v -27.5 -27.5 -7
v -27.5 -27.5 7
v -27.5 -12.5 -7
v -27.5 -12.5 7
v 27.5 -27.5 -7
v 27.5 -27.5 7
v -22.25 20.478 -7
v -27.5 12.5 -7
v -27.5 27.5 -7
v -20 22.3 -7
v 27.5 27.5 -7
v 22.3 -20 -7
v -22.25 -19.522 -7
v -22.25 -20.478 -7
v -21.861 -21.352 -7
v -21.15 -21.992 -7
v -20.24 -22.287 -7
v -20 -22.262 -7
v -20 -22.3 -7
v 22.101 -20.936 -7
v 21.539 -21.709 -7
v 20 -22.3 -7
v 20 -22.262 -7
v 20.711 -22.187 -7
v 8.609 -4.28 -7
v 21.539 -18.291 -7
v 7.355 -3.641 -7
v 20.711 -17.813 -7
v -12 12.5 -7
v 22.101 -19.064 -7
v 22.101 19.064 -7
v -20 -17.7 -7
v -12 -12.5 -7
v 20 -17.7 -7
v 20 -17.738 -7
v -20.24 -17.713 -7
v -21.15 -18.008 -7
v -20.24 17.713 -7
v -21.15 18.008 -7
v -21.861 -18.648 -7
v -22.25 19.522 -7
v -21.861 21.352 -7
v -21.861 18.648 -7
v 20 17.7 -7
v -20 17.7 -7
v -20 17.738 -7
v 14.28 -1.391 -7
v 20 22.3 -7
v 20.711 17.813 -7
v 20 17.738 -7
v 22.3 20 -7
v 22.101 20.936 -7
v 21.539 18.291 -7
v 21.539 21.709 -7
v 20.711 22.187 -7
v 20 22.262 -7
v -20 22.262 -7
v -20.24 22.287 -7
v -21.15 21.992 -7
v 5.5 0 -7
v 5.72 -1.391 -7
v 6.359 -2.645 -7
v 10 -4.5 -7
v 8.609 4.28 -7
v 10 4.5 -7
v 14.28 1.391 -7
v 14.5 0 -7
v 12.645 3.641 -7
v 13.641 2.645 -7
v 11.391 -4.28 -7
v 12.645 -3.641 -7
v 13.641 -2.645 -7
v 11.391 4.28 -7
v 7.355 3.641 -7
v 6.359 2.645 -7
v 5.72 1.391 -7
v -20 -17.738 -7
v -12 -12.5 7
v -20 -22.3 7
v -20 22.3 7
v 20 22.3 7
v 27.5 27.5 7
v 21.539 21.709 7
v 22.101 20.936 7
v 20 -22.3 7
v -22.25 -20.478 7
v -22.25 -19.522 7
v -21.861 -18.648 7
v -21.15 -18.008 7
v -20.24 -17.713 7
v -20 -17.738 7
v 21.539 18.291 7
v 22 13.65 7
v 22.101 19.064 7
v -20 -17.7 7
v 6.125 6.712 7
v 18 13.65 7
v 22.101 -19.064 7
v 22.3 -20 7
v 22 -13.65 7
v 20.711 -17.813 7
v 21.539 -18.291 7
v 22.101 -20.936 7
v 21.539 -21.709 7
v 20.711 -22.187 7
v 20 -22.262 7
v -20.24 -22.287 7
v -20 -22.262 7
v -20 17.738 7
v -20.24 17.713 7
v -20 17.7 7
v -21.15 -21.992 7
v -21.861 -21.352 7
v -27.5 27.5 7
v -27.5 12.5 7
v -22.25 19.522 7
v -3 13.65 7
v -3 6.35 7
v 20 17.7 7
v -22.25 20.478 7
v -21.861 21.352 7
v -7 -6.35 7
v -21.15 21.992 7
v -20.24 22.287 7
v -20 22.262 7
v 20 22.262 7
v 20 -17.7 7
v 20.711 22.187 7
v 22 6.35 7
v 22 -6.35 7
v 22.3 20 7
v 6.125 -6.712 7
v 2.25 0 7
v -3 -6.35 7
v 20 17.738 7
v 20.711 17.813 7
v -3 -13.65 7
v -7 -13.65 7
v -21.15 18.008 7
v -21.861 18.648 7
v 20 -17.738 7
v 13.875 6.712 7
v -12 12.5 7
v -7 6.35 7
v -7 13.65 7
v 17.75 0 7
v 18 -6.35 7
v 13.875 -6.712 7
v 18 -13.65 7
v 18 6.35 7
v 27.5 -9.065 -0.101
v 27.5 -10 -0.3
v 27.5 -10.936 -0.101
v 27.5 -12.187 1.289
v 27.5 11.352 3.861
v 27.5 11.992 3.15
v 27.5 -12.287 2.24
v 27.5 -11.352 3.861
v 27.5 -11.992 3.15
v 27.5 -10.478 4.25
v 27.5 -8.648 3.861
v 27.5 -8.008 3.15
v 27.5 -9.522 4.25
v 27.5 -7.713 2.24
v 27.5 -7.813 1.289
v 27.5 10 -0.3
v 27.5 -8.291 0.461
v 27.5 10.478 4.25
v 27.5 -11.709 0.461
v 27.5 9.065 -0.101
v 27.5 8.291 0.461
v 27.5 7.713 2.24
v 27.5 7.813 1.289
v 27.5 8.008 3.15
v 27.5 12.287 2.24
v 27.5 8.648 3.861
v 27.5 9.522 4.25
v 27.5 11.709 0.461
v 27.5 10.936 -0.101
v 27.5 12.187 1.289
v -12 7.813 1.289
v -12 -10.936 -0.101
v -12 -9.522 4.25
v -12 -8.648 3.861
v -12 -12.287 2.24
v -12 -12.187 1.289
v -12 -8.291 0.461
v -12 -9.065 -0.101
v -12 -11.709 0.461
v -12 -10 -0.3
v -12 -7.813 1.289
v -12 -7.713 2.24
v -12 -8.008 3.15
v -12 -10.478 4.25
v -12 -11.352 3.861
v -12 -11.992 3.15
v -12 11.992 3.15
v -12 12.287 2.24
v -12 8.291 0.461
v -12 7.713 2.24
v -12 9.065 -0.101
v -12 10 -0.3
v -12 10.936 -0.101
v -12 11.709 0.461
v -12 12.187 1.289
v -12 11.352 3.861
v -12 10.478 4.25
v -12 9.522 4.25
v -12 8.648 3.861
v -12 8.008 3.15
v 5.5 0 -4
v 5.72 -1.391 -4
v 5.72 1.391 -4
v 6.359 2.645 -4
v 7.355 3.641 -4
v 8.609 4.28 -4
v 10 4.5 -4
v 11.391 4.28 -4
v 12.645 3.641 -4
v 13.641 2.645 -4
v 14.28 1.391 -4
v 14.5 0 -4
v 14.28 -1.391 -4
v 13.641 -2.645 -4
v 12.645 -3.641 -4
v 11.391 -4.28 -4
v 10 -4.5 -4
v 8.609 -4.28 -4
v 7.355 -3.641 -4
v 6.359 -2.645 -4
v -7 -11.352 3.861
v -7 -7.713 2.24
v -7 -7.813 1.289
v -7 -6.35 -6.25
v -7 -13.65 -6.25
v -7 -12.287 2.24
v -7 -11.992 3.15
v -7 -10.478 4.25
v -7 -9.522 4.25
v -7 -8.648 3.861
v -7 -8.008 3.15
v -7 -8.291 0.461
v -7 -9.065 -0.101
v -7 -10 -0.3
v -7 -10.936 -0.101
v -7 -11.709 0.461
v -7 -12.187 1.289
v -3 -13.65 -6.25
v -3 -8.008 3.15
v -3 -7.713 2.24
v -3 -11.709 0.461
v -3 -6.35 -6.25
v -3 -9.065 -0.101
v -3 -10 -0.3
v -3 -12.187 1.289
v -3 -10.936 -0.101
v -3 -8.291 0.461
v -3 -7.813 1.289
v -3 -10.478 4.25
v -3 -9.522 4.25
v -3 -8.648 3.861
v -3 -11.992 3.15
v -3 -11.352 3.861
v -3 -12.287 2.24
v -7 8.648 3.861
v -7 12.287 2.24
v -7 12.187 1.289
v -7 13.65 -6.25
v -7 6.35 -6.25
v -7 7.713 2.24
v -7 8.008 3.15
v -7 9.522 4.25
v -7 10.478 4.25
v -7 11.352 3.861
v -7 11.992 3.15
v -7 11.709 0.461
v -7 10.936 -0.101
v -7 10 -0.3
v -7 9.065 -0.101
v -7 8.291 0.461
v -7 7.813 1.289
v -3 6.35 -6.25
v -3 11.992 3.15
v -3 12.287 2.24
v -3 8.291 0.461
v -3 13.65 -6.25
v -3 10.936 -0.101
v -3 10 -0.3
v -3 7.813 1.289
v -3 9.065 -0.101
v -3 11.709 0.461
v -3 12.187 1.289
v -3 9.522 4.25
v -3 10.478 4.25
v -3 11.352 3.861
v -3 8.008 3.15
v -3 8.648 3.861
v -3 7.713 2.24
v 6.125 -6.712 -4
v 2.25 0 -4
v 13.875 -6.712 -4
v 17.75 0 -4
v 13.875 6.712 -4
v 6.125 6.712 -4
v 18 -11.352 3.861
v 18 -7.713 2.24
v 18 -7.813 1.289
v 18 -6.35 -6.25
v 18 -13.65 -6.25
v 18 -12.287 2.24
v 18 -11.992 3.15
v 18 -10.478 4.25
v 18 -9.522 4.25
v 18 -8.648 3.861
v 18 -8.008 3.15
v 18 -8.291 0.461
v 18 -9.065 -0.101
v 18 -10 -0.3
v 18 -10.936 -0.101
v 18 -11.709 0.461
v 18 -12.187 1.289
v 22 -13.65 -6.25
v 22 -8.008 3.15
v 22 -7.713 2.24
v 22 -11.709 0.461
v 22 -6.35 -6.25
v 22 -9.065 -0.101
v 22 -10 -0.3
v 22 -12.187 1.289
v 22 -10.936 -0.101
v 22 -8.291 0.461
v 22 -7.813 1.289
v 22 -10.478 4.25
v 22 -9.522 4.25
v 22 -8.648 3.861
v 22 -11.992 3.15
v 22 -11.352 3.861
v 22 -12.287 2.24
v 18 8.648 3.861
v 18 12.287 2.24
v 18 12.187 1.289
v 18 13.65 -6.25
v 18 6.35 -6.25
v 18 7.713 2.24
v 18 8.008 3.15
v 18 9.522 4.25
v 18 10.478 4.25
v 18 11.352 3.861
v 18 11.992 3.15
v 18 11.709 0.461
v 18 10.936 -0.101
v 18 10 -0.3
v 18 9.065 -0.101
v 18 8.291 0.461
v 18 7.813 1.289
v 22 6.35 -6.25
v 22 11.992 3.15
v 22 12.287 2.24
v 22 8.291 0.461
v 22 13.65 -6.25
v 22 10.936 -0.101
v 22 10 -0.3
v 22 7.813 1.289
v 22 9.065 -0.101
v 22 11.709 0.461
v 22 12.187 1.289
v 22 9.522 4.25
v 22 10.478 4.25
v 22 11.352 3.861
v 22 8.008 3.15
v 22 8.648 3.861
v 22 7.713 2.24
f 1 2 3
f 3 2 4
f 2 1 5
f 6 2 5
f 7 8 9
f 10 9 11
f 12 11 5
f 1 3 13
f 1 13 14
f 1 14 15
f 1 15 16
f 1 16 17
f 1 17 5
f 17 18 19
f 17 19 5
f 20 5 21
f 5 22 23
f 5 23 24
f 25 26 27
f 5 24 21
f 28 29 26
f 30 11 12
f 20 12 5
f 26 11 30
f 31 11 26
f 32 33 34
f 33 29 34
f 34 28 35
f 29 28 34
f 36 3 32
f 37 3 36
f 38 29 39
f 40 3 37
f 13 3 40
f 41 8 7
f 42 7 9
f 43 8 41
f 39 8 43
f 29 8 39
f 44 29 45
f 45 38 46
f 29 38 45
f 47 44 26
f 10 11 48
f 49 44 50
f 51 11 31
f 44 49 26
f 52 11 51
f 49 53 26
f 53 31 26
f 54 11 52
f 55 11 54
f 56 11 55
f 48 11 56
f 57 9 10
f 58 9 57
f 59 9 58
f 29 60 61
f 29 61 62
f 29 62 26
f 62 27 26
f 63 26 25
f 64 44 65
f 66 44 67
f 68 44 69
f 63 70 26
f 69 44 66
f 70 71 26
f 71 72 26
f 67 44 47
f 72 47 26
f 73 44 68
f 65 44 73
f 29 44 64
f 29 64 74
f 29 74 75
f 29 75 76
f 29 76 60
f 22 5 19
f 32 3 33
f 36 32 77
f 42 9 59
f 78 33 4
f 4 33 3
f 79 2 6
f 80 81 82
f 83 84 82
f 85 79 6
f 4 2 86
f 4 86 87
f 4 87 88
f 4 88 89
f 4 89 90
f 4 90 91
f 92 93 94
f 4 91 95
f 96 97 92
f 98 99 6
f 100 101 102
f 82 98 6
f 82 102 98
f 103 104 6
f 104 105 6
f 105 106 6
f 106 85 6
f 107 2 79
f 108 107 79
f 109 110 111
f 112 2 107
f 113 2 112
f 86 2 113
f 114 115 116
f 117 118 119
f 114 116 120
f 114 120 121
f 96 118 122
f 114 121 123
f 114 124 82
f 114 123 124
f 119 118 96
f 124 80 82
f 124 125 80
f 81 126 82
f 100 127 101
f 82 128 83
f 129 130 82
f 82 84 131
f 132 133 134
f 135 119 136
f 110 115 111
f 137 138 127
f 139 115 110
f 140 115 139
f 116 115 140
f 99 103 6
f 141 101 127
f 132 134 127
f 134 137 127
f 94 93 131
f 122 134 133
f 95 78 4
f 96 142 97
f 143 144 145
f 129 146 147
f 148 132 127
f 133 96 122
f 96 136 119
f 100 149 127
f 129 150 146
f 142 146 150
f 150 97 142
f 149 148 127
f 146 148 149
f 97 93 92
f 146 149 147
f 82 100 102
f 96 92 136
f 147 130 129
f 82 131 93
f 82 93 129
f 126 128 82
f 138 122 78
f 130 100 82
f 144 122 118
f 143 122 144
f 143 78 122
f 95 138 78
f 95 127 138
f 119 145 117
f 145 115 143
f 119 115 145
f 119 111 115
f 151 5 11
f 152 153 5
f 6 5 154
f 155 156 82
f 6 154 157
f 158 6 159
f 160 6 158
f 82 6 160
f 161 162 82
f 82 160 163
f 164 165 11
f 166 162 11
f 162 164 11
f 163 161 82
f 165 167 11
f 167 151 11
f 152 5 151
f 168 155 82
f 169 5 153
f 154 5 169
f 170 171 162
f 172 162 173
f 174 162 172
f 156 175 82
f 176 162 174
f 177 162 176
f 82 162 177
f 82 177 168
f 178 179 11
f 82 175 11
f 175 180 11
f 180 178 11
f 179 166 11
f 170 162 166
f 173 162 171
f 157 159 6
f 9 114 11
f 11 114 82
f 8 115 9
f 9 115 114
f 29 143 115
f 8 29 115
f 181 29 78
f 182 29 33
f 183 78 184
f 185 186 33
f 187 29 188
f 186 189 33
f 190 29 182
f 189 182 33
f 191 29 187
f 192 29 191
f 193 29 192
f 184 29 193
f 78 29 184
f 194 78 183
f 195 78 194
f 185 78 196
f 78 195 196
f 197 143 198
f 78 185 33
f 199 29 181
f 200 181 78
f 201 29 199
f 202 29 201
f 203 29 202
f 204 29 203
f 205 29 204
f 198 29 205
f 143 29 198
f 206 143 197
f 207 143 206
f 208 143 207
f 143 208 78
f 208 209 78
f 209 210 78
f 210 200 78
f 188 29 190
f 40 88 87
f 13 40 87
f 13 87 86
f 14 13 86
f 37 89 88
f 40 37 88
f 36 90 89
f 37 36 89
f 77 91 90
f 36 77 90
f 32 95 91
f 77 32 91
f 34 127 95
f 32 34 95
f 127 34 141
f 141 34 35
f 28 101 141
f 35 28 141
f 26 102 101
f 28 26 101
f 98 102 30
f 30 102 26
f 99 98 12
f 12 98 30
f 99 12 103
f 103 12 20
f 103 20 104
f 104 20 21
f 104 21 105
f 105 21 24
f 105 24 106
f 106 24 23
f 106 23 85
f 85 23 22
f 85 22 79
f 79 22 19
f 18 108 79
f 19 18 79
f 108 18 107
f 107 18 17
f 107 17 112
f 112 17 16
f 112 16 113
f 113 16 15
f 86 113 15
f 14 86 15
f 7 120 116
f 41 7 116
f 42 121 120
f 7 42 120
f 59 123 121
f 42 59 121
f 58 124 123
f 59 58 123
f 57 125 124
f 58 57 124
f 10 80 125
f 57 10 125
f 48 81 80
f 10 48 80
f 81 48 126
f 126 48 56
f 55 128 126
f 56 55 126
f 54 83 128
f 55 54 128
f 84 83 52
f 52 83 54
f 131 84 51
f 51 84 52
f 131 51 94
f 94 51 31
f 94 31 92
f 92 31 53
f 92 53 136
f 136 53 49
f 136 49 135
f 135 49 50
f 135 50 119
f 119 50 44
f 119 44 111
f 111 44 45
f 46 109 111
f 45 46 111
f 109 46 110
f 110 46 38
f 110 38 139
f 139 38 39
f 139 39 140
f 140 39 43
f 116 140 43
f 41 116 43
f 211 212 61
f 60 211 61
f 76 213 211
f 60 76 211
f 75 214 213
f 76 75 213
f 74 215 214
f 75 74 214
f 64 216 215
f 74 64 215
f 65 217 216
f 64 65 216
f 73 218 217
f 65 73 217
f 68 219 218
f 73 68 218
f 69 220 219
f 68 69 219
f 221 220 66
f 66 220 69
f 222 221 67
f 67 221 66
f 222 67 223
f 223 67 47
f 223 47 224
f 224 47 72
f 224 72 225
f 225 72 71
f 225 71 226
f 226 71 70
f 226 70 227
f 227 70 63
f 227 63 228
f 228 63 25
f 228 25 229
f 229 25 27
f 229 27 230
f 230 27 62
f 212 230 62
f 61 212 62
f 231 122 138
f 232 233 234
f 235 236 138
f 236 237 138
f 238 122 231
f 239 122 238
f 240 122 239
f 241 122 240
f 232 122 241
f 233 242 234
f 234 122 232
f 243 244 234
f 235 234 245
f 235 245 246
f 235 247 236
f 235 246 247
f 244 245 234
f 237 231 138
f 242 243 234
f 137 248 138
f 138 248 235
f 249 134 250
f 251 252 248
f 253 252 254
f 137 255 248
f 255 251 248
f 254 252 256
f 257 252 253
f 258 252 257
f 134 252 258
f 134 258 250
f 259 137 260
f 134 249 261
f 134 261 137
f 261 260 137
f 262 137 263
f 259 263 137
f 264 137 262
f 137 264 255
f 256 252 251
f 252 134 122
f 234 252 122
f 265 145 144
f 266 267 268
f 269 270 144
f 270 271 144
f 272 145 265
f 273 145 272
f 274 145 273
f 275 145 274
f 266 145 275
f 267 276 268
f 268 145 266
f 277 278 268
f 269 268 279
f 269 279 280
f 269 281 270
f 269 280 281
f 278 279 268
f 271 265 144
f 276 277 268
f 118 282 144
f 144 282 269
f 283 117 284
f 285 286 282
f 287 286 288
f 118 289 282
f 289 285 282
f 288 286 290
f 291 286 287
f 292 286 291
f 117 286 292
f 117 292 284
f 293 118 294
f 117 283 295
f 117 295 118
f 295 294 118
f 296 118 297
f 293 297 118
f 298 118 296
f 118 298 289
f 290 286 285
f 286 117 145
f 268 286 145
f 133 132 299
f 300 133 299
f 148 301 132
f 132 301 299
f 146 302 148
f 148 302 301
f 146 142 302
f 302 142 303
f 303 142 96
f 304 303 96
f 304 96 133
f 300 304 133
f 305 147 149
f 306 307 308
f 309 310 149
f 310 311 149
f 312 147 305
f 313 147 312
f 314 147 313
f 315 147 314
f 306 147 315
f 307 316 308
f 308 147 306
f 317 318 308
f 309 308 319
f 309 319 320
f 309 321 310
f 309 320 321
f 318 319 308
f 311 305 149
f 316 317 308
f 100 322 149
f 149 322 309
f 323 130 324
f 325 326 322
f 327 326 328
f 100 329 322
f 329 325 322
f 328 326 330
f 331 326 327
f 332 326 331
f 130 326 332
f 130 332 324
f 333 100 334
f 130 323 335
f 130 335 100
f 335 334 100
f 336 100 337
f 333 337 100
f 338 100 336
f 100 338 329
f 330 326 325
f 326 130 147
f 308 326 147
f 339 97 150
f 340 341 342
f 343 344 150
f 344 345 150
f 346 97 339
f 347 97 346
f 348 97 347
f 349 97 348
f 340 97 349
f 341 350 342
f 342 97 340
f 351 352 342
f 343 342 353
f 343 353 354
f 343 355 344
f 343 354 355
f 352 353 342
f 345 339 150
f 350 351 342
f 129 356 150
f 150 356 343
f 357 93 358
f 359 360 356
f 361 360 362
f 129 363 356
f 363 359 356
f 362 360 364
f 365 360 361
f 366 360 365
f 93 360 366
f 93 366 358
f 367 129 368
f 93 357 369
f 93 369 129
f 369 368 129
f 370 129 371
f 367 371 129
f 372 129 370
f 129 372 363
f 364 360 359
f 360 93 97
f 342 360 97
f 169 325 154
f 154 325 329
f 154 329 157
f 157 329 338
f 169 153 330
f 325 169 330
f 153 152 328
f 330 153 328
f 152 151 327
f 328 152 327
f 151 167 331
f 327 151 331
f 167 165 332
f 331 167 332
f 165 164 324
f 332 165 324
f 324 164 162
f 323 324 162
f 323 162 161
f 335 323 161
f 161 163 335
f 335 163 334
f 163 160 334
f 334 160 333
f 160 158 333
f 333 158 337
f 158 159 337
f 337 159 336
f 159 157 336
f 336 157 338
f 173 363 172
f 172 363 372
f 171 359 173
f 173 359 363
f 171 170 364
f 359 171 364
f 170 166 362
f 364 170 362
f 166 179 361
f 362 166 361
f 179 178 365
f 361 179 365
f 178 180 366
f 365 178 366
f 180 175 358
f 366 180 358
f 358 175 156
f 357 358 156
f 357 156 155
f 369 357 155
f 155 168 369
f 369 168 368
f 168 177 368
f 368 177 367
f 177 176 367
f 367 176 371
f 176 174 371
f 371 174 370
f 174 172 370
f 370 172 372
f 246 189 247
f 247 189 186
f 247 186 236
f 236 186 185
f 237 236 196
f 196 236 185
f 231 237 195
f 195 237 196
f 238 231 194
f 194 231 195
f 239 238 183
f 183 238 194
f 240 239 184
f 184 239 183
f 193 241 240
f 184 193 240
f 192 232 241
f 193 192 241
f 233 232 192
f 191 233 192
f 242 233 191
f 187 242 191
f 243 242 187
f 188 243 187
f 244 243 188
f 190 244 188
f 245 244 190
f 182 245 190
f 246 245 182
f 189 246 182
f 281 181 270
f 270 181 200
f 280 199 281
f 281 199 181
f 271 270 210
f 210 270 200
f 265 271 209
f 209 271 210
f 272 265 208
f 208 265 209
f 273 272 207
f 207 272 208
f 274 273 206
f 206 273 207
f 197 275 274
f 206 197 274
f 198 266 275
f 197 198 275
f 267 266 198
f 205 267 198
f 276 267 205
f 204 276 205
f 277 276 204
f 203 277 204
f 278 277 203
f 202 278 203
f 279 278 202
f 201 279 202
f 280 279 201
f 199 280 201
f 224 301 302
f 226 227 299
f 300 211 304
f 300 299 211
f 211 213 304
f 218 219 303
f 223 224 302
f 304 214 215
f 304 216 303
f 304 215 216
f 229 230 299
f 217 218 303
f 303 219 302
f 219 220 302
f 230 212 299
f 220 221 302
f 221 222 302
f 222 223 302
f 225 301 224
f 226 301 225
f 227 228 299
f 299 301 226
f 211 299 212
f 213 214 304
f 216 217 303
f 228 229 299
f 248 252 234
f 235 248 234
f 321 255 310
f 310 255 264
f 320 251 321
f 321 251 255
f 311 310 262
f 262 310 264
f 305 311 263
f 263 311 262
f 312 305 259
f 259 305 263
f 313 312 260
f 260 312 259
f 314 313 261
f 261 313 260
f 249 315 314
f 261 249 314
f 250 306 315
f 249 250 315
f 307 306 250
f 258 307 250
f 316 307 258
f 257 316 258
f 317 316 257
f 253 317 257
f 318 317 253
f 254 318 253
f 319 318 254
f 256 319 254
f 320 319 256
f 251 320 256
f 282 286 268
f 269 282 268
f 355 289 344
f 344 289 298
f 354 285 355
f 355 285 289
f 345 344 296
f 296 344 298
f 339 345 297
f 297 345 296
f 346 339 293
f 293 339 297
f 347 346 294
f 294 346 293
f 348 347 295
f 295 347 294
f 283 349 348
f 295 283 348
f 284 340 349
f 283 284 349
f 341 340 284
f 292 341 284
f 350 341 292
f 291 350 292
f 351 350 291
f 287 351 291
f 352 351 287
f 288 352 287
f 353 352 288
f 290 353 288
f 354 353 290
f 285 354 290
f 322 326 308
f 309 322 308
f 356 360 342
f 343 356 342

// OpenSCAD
ancho_pared=7;


module cubre_tensor(){
	difference(){
		
		//CUERPO CENTRAL
		union(){
			cube([55,55,14],center=true);
			
			
			//pestañas de montaje
			/*translate([2.5,60/2,5]) rotate([0,0,0])
			cube([65,10,4],center=true);

			translate([2.5,-60/2,5]) rotate([0,0,0])
			cube([65,10,4],center=true);
			
			
			
			//suplemento
			translate([60/2,0,0]) rotate([0,0,0])
			cube([10,50,14],center=true);
			*/
			
		}
		//VACIADO tuerca
		translate([10,0,3]) rotate([0,0,0])
		//cube([50,42,16],center=true);
		cylinder(r=15.5/2,h=14, $fn=6, center=true);
		

		translate([-20,0,]) rotate([0,0,0])
		cube([16,25,16],center=true);


		//AGUJERO INFERIOR EJE
		translate([10,0,3]) rotate([0,0,0])
		cylinder(r=9/2,h=100, $fn=20, center=true);
		
		//AGUJERO TENSOR
		translate([0,10,2]) rotate([0,90,0])
		cylinder(r=4.6/2,h=100,center=true , $fn=15);

		
		//AGUJERO TENSOR
		translate([0,-10,2]) rotate([0,90,0])
		cylinder(r=4.6/2,h=100,center=true , $fn=15);
	
				

		//alojmaiento tuerca

		translate([40/2,10,0.75]) rotate([0,0,0])
		cube([4,7.30,14],center=true);
		
		translate([40/2,-10,0.75]) rotate([0,0,0])
		cube([4,7.30,14],center=true);

		

		translate([-10/2,10,0.75]) rotate([0,0,0])
		cube([4,7.30,14],center=true);
		
		translate([-10/2,-10,0.75]) rotate([0,0,0])
		cube([4,7.30,14],center=true);
		
		//agujero montaje
		translate([40/2,40/2,0]) rotate([0,0,0])
		cylinder(r=4.6/2,h=100,center=true , $fn=15);
		
		translate([-40/2,40/2,0]) rotate([0,0,0])
		cylinder(r=4.6/2,h=100,center=true , $fn=15);

		translate([40/2,-40/2,0]) rotate([0,0,0])
		cylinder(r=4.6/2,h=100,center=true , $fn=15);

		translate([-40/2,-40/2,0]) rotate([0,0,0])
		cylinder(r=4.6/2,h=100,center=true , $fn=15);
		
		translate([-25/2,-40/2,0]) rotate([0,0,0])
		cylinder(r=4.6/2,h=100,center=true , $fn=15);

		translate([0,40/2,5]) rotate([0,0,0])
			cube([40,4.60,100],center=true);

		translate([0,-40/2,5]) rotate([0,0,0])
			cube([40,4.60,100],center=true);
		

		/*//agujeros para aligerar
		translate([15,15,0]) rotate([0,0,0])
		cylinder(r=15/2,h=100,center=true , $fn=15);
		translate([-11,15,0]) rotate([0,0,0])
		cylinder(r=15/2,h=100,center=true , $fn=15);
		translate([15,-15,0]) rotate([0,0,0])
		cylinder(r=15/2,h=100,center=true , $fn=15);
		translate([-11,-15,0]) rotate([0,0,0])
		cylinder(r=15/2,h=100,center=true , $fn=15);

		translate([-19,0,0]) rotate([0,0,0])
		cylinder(r=14/2,h=100,center=true , $fn=15);
		translate([23,0,0]) rotate([0,0,0])
		cylinder(r=14/2,h=100,center=true , $fn=15);
		*/
	}
}


translate([0,0,0]) rotate([0,0,0])
cubre_tensor();
